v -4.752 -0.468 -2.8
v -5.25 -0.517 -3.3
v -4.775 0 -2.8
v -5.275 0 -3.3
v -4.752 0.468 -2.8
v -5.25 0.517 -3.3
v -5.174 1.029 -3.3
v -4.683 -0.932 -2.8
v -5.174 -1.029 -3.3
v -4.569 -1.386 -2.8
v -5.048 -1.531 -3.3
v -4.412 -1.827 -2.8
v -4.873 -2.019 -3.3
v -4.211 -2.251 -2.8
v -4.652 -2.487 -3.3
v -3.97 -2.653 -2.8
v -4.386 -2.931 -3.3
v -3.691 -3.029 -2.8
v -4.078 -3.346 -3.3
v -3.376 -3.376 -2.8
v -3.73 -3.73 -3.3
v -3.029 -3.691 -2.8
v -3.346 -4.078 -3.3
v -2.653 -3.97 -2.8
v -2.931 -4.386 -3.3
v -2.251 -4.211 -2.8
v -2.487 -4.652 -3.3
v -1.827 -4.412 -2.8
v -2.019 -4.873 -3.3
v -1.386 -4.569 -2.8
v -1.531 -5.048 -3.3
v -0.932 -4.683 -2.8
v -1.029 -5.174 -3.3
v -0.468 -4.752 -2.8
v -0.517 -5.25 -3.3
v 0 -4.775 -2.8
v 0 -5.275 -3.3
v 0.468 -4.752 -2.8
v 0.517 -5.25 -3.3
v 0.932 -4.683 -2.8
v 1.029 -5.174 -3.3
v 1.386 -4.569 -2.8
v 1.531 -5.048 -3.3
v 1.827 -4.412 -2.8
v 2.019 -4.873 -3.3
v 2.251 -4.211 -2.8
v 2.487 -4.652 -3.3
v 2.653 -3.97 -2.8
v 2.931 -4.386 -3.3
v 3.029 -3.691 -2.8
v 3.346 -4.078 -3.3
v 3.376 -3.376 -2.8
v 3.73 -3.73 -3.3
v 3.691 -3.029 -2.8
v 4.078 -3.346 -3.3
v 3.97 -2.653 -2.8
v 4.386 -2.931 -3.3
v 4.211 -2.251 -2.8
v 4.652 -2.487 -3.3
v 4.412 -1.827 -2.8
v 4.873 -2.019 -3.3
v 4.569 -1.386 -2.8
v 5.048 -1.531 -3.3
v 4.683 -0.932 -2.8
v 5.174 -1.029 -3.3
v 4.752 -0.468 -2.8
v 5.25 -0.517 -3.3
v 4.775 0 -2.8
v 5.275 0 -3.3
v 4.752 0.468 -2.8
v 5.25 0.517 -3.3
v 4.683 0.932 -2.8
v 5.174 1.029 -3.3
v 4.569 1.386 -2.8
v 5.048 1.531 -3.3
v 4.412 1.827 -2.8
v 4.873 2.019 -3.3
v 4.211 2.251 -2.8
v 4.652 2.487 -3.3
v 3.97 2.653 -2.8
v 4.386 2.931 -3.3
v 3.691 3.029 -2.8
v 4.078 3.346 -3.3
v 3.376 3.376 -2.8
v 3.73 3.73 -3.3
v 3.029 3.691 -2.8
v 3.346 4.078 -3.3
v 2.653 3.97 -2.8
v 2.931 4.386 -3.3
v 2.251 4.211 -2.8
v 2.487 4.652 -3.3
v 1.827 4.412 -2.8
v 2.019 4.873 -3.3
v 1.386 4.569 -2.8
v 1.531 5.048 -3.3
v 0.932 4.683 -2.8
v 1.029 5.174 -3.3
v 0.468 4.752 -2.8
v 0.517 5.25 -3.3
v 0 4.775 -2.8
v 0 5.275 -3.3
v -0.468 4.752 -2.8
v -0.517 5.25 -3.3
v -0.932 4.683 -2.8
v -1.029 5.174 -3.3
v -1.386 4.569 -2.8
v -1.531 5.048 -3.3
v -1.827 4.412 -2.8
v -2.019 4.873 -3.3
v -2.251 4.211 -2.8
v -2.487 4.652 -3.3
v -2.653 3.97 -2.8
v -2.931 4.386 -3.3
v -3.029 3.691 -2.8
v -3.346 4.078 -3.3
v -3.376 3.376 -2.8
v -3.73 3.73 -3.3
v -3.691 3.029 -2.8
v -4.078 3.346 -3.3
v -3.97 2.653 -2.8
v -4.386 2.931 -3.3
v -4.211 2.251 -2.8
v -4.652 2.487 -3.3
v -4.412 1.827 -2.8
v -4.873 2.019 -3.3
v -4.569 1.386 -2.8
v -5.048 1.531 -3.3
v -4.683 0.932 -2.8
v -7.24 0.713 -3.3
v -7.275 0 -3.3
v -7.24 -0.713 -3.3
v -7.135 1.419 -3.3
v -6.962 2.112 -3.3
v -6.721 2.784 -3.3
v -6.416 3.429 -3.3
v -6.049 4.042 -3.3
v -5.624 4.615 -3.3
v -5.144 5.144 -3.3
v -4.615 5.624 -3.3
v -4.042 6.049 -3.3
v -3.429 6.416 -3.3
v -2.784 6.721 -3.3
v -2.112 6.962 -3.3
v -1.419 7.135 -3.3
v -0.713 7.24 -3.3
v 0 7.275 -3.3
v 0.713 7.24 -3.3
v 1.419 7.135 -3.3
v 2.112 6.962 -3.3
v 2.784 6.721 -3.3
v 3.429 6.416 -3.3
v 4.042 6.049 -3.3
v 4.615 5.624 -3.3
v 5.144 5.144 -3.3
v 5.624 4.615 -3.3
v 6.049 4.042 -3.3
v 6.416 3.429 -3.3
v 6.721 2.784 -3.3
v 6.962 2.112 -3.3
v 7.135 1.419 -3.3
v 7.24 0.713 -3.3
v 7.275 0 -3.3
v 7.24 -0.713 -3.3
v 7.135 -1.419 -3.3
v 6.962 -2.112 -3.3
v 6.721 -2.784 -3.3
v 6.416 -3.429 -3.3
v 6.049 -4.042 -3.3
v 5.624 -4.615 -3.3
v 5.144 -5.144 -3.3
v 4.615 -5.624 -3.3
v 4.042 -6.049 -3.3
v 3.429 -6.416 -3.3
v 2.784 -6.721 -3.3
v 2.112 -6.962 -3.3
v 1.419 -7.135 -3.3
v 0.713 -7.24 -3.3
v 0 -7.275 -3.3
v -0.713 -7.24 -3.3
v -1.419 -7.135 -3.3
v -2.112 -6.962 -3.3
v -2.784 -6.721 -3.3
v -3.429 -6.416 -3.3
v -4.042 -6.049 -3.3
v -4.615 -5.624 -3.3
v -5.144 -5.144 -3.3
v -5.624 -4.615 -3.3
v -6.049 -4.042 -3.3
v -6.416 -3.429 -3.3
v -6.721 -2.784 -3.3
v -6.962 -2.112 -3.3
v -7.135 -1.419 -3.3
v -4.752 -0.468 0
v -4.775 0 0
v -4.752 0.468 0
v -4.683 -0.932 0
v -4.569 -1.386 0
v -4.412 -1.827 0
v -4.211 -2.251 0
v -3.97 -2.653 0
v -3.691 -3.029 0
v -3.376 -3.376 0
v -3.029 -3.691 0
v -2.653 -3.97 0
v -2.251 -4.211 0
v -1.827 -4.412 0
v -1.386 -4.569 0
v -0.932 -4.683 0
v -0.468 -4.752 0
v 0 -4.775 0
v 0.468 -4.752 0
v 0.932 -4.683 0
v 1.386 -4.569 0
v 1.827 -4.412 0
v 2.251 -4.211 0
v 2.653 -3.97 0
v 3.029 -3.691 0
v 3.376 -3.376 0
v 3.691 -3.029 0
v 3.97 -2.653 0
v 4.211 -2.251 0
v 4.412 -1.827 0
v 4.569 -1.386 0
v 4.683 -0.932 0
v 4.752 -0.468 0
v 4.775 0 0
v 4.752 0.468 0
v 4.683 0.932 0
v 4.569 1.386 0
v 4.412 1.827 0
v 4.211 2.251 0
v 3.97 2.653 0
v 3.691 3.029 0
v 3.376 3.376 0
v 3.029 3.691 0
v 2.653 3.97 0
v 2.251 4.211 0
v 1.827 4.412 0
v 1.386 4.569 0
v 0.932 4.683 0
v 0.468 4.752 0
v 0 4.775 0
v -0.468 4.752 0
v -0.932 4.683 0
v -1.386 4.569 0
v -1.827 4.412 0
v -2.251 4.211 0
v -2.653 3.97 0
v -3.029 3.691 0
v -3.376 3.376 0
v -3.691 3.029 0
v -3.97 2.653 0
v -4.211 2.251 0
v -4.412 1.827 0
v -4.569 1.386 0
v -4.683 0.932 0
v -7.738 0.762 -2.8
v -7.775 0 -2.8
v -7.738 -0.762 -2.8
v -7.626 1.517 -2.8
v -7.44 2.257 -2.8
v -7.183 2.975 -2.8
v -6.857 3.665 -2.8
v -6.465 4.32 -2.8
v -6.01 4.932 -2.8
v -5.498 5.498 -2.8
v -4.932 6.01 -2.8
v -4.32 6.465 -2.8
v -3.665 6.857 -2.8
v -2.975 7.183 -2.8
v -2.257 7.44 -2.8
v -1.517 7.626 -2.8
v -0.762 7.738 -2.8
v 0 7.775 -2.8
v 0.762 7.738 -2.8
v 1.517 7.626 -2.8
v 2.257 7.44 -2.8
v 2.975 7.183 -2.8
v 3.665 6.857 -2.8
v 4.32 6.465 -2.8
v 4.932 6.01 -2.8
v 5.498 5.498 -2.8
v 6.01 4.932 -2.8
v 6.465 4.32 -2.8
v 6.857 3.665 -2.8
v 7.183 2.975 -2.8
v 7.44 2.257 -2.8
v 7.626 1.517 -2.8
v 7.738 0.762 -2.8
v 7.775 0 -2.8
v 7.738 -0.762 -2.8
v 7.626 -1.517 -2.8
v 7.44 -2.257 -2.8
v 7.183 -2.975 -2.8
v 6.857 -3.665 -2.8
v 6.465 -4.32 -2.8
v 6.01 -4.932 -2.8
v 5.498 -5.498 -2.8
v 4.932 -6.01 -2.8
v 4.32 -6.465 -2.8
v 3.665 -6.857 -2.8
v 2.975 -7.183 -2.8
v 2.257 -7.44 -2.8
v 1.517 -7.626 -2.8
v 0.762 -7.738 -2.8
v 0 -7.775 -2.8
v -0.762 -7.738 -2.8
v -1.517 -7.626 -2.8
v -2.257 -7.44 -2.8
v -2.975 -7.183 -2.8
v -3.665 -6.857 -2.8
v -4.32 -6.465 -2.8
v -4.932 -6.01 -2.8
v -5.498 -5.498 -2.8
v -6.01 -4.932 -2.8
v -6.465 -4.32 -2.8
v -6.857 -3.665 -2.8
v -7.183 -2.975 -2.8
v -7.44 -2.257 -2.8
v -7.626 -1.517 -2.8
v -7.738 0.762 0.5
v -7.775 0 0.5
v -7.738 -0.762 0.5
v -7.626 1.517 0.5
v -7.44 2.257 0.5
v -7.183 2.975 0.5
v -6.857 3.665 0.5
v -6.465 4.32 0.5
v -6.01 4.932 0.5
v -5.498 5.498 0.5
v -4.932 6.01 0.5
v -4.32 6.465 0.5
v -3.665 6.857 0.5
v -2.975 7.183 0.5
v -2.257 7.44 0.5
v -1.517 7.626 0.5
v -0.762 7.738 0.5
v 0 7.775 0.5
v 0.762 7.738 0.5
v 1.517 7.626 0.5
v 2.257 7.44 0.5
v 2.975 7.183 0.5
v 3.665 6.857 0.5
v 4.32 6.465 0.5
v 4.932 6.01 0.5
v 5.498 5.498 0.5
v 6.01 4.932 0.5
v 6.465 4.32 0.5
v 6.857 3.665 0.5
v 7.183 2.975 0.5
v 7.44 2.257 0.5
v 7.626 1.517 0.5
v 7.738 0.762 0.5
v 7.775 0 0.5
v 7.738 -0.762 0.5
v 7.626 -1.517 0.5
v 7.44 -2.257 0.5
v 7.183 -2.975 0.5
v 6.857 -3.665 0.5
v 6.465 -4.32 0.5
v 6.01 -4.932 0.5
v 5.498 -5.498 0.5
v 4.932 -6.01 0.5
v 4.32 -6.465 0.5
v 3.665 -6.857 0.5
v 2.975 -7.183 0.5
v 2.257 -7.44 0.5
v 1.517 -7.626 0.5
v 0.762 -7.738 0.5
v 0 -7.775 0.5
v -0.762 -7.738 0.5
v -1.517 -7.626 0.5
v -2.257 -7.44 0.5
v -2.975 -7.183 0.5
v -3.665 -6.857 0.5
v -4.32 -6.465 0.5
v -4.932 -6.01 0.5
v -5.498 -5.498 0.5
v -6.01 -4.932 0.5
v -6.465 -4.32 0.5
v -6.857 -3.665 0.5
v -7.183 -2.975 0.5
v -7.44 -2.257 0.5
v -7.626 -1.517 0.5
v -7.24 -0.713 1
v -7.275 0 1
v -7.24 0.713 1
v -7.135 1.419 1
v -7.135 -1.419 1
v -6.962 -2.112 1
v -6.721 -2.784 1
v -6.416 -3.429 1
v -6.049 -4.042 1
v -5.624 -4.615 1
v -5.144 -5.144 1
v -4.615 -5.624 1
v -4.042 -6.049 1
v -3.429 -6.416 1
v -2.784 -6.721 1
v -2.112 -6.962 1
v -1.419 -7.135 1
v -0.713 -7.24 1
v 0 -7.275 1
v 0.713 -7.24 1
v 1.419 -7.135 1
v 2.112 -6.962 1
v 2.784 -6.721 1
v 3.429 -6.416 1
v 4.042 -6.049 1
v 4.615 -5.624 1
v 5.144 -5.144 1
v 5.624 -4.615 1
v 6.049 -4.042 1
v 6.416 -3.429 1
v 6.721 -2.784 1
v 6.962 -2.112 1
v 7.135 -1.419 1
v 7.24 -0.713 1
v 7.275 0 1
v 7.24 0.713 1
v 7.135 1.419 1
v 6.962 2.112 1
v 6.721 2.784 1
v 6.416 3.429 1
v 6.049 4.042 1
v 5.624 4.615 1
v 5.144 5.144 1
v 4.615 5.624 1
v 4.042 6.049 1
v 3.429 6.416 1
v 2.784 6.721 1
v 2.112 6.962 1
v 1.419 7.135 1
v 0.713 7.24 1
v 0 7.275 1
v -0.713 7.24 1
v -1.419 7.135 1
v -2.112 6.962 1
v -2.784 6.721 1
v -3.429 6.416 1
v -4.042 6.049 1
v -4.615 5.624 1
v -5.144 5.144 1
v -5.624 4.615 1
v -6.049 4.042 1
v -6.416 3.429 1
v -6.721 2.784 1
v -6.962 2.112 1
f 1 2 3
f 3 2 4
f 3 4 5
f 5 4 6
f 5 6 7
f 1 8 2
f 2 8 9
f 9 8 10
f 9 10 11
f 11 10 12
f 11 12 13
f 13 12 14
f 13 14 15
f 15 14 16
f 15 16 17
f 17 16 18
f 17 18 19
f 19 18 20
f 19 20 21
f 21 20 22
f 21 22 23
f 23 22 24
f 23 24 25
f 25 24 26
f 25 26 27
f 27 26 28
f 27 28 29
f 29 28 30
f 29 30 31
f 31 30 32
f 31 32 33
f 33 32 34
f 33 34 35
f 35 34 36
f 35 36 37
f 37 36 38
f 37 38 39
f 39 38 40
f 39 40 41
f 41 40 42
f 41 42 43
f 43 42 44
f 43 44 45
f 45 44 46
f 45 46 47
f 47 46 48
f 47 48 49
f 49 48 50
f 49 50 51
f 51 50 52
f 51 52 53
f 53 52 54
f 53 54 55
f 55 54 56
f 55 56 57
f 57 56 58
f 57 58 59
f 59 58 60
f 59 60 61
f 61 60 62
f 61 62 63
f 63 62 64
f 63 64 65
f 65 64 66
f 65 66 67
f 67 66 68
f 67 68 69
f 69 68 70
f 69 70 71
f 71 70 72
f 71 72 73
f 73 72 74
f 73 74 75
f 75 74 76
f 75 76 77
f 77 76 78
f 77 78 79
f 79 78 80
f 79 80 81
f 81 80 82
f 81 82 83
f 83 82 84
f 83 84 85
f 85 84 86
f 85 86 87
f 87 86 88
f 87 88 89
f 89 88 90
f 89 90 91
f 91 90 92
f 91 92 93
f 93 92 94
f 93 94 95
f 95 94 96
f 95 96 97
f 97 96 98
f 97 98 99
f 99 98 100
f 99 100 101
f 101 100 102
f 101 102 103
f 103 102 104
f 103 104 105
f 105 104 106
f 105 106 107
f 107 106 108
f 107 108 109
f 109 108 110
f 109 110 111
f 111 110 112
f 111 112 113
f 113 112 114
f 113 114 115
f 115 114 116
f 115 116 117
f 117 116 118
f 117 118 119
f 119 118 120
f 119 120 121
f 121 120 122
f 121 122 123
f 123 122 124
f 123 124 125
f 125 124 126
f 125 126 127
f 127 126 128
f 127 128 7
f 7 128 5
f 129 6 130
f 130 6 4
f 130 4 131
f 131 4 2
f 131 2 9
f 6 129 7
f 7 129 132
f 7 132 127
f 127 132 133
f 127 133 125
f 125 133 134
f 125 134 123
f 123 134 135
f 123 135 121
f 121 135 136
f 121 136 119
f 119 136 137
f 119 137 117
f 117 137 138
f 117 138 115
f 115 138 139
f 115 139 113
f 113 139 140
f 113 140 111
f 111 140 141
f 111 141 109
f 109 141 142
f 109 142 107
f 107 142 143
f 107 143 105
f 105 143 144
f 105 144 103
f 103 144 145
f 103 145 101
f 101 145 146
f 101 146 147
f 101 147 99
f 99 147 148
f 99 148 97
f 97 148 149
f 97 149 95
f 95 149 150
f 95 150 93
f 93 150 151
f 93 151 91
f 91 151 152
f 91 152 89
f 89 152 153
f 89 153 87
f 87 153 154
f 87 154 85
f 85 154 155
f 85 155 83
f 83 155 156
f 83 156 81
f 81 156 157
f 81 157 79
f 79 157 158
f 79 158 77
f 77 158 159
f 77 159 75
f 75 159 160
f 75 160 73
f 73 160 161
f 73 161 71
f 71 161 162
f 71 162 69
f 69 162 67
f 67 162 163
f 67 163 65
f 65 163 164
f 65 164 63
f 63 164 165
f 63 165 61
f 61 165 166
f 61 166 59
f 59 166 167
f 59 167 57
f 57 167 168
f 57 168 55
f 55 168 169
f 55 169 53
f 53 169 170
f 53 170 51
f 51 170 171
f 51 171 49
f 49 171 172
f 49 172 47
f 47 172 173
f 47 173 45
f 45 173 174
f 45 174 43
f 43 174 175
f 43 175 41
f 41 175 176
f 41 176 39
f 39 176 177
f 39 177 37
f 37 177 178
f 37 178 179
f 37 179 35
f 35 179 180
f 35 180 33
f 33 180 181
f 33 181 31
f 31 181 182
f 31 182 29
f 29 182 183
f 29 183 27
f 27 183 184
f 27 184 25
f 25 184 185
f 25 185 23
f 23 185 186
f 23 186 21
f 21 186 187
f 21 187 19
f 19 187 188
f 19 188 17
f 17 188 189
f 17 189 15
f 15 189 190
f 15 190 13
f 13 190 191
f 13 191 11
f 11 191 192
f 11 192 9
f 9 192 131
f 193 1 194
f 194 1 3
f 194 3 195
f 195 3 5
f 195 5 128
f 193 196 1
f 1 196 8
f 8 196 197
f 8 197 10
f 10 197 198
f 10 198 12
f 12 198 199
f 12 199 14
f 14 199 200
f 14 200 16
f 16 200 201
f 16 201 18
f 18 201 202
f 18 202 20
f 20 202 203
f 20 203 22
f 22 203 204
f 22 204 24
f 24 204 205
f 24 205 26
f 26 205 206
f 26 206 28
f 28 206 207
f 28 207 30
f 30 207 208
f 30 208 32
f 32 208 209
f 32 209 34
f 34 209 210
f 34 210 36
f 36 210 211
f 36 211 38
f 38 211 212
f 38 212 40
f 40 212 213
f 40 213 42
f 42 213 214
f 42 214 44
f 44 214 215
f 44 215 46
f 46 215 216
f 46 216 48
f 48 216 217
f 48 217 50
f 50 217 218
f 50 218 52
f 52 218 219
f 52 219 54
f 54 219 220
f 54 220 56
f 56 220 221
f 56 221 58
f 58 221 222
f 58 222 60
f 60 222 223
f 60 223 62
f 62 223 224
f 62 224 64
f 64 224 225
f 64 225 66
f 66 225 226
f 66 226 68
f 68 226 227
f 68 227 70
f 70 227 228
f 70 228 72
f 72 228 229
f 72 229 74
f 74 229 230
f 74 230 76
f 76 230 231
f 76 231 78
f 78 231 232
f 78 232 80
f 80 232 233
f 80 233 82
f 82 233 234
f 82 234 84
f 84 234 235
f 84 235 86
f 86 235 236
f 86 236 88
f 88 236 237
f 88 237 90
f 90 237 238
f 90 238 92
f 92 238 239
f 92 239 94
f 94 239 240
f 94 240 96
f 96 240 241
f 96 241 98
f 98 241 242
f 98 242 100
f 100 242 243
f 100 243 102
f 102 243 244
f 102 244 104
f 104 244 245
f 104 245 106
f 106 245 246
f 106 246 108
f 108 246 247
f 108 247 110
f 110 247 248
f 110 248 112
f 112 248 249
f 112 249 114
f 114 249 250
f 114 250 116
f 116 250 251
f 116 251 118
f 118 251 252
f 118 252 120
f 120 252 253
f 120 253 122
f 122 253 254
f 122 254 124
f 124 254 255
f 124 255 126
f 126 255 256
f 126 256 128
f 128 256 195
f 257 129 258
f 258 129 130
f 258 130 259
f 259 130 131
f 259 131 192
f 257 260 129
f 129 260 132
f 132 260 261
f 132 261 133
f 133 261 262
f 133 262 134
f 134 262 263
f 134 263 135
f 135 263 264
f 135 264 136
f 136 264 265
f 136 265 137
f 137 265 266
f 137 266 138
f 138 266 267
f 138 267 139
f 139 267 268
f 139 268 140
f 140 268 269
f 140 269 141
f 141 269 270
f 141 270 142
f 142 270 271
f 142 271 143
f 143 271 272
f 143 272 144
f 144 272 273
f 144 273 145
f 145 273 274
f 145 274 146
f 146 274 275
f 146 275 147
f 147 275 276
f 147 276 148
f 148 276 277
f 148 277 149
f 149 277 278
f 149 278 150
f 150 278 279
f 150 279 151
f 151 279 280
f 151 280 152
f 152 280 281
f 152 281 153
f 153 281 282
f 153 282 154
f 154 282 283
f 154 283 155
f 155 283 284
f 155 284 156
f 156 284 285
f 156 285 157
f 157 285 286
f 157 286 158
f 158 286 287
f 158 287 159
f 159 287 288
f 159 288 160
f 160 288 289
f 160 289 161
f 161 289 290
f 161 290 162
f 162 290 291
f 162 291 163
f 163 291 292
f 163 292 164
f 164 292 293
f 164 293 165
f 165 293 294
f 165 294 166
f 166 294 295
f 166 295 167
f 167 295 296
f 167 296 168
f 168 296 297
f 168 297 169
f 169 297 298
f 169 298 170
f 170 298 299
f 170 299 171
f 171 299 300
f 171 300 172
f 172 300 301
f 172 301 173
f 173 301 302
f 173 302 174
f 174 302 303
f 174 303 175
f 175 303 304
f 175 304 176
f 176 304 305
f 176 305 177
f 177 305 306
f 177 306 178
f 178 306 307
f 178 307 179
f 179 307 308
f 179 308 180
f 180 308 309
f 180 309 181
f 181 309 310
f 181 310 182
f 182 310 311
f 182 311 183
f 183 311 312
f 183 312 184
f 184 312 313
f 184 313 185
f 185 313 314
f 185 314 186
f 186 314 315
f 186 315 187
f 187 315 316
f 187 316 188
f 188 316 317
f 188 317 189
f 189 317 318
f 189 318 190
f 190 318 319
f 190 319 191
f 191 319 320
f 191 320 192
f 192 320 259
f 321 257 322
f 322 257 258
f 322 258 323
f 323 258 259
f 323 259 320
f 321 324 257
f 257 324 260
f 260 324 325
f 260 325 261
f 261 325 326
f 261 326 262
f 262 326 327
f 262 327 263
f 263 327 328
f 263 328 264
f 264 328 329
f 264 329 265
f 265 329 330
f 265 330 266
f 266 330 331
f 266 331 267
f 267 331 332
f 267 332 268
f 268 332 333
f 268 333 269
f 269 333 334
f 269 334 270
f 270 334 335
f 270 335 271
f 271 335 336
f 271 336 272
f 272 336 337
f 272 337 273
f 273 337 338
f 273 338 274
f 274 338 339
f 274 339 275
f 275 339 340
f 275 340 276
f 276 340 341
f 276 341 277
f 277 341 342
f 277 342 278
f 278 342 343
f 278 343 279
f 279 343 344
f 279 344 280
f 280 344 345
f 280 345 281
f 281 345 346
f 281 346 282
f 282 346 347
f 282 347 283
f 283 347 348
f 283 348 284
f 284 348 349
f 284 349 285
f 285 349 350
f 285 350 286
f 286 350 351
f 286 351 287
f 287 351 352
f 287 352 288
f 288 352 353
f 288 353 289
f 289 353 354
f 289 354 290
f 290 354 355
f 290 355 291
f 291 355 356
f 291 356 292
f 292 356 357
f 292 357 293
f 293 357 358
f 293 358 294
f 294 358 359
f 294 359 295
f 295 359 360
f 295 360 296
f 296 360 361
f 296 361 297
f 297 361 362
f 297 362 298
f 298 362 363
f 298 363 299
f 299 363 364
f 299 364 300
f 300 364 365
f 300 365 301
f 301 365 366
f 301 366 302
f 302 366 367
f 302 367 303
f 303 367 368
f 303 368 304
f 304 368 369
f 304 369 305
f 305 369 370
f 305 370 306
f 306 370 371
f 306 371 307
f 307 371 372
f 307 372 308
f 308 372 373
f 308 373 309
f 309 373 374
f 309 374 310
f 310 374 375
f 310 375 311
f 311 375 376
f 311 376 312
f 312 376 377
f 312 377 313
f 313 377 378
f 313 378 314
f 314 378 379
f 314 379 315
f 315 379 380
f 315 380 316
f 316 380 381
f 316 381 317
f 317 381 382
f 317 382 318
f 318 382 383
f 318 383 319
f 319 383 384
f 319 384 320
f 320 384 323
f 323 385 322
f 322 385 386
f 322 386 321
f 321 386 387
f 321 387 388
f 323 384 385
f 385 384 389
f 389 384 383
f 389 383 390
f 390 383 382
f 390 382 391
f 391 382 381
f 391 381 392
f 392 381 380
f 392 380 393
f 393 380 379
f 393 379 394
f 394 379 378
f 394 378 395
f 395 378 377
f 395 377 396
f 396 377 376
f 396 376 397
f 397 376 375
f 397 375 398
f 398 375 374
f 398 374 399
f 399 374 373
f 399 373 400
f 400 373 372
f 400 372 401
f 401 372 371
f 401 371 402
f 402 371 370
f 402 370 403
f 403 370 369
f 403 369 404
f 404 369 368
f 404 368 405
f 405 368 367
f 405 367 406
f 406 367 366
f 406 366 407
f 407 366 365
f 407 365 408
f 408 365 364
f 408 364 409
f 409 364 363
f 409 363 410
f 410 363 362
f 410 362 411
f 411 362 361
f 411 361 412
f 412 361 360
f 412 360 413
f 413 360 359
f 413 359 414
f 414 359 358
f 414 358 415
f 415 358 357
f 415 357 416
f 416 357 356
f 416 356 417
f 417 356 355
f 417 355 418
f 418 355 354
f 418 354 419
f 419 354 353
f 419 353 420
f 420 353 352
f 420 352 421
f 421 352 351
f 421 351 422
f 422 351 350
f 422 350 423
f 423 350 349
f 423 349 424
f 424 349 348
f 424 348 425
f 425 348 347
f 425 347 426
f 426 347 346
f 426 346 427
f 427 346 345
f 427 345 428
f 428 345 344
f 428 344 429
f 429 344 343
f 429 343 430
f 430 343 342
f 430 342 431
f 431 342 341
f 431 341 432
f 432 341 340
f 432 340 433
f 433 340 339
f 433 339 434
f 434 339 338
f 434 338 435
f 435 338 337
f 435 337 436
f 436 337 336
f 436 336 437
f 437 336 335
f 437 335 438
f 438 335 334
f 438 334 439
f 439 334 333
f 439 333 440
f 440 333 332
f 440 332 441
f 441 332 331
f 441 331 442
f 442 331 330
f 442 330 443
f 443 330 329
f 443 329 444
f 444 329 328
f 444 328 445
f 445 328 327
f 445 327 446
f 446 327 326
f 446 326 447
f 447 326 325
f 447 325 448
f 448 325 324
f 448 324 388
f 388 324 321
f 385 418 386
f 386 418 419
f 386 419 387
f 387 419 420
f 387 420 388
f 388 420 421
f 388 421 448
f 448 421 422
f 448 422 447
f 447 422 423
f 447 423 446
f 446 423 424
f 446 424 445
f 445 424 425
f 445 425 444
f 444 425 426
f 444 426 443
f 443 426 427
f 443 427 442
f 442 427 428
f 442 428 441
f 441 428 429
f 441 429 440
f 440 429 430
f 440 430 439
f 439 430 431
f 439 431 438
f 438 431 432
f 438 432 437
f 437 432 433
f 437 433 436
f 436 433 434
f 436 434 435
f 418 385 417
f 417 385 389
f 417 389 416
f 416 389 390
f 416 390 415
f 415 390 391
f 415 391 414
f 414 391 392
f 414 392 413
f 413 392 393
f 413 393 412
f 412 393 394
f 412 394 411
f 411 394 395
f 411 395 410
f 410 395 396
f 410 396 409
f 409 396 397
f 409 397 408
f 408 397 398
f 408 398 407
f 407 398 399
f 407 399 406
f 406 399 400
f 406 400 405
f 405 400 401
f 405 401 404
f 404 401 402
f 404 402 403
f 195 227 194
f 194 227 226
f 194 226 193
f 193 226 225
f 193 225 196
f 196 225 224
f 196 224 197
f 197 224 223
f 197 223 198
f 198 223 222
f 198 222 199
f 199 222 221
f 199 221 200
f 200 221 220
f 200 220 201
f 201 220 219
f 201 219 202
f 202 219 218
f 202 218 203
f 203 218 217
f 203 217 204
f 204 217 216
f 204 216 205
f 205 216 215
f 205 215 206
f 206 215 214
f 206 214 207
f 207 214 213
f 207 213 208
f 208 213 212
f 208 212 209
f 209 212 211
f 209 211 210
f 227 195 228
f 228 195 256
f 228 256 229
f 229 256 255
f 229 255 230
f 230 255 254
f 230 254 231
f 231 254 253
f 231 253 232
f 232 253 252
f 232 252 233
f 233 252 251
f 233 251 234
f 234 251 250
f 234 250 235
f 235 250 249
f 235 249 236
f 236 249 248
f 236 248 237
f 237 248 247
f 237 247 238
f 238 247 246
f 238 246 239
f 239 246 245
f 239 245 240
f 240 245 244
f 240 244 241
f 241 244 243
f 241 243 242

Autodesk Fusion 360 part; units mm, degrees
sketch "Sketch1" plane through (0, 0, 0) normal (0, 0, 1) x (1, 0, 0)
  circle A0 centre (0, 0) radius 7.775
  circle A1 centre (0, 0) radius 4.775
  dimension "d1" = 9.55
  dimension "d2" = 15.55
extrude "Extrude1" add sketch "Sketch1" along normal blind 1 contours A0 | A1
extrude "Extrude2" add sketch "Sketch1" against normal blind 3.3
chamfer "Chamfer1" distance 0.5 angle 45 3 edges at (-7.2488, -2.8116, 1) (-7.2488, 2.8116, -3.3) (-4.4519, -1.7267, -3.3)
equation "d2 = d1 + 6 mm"
